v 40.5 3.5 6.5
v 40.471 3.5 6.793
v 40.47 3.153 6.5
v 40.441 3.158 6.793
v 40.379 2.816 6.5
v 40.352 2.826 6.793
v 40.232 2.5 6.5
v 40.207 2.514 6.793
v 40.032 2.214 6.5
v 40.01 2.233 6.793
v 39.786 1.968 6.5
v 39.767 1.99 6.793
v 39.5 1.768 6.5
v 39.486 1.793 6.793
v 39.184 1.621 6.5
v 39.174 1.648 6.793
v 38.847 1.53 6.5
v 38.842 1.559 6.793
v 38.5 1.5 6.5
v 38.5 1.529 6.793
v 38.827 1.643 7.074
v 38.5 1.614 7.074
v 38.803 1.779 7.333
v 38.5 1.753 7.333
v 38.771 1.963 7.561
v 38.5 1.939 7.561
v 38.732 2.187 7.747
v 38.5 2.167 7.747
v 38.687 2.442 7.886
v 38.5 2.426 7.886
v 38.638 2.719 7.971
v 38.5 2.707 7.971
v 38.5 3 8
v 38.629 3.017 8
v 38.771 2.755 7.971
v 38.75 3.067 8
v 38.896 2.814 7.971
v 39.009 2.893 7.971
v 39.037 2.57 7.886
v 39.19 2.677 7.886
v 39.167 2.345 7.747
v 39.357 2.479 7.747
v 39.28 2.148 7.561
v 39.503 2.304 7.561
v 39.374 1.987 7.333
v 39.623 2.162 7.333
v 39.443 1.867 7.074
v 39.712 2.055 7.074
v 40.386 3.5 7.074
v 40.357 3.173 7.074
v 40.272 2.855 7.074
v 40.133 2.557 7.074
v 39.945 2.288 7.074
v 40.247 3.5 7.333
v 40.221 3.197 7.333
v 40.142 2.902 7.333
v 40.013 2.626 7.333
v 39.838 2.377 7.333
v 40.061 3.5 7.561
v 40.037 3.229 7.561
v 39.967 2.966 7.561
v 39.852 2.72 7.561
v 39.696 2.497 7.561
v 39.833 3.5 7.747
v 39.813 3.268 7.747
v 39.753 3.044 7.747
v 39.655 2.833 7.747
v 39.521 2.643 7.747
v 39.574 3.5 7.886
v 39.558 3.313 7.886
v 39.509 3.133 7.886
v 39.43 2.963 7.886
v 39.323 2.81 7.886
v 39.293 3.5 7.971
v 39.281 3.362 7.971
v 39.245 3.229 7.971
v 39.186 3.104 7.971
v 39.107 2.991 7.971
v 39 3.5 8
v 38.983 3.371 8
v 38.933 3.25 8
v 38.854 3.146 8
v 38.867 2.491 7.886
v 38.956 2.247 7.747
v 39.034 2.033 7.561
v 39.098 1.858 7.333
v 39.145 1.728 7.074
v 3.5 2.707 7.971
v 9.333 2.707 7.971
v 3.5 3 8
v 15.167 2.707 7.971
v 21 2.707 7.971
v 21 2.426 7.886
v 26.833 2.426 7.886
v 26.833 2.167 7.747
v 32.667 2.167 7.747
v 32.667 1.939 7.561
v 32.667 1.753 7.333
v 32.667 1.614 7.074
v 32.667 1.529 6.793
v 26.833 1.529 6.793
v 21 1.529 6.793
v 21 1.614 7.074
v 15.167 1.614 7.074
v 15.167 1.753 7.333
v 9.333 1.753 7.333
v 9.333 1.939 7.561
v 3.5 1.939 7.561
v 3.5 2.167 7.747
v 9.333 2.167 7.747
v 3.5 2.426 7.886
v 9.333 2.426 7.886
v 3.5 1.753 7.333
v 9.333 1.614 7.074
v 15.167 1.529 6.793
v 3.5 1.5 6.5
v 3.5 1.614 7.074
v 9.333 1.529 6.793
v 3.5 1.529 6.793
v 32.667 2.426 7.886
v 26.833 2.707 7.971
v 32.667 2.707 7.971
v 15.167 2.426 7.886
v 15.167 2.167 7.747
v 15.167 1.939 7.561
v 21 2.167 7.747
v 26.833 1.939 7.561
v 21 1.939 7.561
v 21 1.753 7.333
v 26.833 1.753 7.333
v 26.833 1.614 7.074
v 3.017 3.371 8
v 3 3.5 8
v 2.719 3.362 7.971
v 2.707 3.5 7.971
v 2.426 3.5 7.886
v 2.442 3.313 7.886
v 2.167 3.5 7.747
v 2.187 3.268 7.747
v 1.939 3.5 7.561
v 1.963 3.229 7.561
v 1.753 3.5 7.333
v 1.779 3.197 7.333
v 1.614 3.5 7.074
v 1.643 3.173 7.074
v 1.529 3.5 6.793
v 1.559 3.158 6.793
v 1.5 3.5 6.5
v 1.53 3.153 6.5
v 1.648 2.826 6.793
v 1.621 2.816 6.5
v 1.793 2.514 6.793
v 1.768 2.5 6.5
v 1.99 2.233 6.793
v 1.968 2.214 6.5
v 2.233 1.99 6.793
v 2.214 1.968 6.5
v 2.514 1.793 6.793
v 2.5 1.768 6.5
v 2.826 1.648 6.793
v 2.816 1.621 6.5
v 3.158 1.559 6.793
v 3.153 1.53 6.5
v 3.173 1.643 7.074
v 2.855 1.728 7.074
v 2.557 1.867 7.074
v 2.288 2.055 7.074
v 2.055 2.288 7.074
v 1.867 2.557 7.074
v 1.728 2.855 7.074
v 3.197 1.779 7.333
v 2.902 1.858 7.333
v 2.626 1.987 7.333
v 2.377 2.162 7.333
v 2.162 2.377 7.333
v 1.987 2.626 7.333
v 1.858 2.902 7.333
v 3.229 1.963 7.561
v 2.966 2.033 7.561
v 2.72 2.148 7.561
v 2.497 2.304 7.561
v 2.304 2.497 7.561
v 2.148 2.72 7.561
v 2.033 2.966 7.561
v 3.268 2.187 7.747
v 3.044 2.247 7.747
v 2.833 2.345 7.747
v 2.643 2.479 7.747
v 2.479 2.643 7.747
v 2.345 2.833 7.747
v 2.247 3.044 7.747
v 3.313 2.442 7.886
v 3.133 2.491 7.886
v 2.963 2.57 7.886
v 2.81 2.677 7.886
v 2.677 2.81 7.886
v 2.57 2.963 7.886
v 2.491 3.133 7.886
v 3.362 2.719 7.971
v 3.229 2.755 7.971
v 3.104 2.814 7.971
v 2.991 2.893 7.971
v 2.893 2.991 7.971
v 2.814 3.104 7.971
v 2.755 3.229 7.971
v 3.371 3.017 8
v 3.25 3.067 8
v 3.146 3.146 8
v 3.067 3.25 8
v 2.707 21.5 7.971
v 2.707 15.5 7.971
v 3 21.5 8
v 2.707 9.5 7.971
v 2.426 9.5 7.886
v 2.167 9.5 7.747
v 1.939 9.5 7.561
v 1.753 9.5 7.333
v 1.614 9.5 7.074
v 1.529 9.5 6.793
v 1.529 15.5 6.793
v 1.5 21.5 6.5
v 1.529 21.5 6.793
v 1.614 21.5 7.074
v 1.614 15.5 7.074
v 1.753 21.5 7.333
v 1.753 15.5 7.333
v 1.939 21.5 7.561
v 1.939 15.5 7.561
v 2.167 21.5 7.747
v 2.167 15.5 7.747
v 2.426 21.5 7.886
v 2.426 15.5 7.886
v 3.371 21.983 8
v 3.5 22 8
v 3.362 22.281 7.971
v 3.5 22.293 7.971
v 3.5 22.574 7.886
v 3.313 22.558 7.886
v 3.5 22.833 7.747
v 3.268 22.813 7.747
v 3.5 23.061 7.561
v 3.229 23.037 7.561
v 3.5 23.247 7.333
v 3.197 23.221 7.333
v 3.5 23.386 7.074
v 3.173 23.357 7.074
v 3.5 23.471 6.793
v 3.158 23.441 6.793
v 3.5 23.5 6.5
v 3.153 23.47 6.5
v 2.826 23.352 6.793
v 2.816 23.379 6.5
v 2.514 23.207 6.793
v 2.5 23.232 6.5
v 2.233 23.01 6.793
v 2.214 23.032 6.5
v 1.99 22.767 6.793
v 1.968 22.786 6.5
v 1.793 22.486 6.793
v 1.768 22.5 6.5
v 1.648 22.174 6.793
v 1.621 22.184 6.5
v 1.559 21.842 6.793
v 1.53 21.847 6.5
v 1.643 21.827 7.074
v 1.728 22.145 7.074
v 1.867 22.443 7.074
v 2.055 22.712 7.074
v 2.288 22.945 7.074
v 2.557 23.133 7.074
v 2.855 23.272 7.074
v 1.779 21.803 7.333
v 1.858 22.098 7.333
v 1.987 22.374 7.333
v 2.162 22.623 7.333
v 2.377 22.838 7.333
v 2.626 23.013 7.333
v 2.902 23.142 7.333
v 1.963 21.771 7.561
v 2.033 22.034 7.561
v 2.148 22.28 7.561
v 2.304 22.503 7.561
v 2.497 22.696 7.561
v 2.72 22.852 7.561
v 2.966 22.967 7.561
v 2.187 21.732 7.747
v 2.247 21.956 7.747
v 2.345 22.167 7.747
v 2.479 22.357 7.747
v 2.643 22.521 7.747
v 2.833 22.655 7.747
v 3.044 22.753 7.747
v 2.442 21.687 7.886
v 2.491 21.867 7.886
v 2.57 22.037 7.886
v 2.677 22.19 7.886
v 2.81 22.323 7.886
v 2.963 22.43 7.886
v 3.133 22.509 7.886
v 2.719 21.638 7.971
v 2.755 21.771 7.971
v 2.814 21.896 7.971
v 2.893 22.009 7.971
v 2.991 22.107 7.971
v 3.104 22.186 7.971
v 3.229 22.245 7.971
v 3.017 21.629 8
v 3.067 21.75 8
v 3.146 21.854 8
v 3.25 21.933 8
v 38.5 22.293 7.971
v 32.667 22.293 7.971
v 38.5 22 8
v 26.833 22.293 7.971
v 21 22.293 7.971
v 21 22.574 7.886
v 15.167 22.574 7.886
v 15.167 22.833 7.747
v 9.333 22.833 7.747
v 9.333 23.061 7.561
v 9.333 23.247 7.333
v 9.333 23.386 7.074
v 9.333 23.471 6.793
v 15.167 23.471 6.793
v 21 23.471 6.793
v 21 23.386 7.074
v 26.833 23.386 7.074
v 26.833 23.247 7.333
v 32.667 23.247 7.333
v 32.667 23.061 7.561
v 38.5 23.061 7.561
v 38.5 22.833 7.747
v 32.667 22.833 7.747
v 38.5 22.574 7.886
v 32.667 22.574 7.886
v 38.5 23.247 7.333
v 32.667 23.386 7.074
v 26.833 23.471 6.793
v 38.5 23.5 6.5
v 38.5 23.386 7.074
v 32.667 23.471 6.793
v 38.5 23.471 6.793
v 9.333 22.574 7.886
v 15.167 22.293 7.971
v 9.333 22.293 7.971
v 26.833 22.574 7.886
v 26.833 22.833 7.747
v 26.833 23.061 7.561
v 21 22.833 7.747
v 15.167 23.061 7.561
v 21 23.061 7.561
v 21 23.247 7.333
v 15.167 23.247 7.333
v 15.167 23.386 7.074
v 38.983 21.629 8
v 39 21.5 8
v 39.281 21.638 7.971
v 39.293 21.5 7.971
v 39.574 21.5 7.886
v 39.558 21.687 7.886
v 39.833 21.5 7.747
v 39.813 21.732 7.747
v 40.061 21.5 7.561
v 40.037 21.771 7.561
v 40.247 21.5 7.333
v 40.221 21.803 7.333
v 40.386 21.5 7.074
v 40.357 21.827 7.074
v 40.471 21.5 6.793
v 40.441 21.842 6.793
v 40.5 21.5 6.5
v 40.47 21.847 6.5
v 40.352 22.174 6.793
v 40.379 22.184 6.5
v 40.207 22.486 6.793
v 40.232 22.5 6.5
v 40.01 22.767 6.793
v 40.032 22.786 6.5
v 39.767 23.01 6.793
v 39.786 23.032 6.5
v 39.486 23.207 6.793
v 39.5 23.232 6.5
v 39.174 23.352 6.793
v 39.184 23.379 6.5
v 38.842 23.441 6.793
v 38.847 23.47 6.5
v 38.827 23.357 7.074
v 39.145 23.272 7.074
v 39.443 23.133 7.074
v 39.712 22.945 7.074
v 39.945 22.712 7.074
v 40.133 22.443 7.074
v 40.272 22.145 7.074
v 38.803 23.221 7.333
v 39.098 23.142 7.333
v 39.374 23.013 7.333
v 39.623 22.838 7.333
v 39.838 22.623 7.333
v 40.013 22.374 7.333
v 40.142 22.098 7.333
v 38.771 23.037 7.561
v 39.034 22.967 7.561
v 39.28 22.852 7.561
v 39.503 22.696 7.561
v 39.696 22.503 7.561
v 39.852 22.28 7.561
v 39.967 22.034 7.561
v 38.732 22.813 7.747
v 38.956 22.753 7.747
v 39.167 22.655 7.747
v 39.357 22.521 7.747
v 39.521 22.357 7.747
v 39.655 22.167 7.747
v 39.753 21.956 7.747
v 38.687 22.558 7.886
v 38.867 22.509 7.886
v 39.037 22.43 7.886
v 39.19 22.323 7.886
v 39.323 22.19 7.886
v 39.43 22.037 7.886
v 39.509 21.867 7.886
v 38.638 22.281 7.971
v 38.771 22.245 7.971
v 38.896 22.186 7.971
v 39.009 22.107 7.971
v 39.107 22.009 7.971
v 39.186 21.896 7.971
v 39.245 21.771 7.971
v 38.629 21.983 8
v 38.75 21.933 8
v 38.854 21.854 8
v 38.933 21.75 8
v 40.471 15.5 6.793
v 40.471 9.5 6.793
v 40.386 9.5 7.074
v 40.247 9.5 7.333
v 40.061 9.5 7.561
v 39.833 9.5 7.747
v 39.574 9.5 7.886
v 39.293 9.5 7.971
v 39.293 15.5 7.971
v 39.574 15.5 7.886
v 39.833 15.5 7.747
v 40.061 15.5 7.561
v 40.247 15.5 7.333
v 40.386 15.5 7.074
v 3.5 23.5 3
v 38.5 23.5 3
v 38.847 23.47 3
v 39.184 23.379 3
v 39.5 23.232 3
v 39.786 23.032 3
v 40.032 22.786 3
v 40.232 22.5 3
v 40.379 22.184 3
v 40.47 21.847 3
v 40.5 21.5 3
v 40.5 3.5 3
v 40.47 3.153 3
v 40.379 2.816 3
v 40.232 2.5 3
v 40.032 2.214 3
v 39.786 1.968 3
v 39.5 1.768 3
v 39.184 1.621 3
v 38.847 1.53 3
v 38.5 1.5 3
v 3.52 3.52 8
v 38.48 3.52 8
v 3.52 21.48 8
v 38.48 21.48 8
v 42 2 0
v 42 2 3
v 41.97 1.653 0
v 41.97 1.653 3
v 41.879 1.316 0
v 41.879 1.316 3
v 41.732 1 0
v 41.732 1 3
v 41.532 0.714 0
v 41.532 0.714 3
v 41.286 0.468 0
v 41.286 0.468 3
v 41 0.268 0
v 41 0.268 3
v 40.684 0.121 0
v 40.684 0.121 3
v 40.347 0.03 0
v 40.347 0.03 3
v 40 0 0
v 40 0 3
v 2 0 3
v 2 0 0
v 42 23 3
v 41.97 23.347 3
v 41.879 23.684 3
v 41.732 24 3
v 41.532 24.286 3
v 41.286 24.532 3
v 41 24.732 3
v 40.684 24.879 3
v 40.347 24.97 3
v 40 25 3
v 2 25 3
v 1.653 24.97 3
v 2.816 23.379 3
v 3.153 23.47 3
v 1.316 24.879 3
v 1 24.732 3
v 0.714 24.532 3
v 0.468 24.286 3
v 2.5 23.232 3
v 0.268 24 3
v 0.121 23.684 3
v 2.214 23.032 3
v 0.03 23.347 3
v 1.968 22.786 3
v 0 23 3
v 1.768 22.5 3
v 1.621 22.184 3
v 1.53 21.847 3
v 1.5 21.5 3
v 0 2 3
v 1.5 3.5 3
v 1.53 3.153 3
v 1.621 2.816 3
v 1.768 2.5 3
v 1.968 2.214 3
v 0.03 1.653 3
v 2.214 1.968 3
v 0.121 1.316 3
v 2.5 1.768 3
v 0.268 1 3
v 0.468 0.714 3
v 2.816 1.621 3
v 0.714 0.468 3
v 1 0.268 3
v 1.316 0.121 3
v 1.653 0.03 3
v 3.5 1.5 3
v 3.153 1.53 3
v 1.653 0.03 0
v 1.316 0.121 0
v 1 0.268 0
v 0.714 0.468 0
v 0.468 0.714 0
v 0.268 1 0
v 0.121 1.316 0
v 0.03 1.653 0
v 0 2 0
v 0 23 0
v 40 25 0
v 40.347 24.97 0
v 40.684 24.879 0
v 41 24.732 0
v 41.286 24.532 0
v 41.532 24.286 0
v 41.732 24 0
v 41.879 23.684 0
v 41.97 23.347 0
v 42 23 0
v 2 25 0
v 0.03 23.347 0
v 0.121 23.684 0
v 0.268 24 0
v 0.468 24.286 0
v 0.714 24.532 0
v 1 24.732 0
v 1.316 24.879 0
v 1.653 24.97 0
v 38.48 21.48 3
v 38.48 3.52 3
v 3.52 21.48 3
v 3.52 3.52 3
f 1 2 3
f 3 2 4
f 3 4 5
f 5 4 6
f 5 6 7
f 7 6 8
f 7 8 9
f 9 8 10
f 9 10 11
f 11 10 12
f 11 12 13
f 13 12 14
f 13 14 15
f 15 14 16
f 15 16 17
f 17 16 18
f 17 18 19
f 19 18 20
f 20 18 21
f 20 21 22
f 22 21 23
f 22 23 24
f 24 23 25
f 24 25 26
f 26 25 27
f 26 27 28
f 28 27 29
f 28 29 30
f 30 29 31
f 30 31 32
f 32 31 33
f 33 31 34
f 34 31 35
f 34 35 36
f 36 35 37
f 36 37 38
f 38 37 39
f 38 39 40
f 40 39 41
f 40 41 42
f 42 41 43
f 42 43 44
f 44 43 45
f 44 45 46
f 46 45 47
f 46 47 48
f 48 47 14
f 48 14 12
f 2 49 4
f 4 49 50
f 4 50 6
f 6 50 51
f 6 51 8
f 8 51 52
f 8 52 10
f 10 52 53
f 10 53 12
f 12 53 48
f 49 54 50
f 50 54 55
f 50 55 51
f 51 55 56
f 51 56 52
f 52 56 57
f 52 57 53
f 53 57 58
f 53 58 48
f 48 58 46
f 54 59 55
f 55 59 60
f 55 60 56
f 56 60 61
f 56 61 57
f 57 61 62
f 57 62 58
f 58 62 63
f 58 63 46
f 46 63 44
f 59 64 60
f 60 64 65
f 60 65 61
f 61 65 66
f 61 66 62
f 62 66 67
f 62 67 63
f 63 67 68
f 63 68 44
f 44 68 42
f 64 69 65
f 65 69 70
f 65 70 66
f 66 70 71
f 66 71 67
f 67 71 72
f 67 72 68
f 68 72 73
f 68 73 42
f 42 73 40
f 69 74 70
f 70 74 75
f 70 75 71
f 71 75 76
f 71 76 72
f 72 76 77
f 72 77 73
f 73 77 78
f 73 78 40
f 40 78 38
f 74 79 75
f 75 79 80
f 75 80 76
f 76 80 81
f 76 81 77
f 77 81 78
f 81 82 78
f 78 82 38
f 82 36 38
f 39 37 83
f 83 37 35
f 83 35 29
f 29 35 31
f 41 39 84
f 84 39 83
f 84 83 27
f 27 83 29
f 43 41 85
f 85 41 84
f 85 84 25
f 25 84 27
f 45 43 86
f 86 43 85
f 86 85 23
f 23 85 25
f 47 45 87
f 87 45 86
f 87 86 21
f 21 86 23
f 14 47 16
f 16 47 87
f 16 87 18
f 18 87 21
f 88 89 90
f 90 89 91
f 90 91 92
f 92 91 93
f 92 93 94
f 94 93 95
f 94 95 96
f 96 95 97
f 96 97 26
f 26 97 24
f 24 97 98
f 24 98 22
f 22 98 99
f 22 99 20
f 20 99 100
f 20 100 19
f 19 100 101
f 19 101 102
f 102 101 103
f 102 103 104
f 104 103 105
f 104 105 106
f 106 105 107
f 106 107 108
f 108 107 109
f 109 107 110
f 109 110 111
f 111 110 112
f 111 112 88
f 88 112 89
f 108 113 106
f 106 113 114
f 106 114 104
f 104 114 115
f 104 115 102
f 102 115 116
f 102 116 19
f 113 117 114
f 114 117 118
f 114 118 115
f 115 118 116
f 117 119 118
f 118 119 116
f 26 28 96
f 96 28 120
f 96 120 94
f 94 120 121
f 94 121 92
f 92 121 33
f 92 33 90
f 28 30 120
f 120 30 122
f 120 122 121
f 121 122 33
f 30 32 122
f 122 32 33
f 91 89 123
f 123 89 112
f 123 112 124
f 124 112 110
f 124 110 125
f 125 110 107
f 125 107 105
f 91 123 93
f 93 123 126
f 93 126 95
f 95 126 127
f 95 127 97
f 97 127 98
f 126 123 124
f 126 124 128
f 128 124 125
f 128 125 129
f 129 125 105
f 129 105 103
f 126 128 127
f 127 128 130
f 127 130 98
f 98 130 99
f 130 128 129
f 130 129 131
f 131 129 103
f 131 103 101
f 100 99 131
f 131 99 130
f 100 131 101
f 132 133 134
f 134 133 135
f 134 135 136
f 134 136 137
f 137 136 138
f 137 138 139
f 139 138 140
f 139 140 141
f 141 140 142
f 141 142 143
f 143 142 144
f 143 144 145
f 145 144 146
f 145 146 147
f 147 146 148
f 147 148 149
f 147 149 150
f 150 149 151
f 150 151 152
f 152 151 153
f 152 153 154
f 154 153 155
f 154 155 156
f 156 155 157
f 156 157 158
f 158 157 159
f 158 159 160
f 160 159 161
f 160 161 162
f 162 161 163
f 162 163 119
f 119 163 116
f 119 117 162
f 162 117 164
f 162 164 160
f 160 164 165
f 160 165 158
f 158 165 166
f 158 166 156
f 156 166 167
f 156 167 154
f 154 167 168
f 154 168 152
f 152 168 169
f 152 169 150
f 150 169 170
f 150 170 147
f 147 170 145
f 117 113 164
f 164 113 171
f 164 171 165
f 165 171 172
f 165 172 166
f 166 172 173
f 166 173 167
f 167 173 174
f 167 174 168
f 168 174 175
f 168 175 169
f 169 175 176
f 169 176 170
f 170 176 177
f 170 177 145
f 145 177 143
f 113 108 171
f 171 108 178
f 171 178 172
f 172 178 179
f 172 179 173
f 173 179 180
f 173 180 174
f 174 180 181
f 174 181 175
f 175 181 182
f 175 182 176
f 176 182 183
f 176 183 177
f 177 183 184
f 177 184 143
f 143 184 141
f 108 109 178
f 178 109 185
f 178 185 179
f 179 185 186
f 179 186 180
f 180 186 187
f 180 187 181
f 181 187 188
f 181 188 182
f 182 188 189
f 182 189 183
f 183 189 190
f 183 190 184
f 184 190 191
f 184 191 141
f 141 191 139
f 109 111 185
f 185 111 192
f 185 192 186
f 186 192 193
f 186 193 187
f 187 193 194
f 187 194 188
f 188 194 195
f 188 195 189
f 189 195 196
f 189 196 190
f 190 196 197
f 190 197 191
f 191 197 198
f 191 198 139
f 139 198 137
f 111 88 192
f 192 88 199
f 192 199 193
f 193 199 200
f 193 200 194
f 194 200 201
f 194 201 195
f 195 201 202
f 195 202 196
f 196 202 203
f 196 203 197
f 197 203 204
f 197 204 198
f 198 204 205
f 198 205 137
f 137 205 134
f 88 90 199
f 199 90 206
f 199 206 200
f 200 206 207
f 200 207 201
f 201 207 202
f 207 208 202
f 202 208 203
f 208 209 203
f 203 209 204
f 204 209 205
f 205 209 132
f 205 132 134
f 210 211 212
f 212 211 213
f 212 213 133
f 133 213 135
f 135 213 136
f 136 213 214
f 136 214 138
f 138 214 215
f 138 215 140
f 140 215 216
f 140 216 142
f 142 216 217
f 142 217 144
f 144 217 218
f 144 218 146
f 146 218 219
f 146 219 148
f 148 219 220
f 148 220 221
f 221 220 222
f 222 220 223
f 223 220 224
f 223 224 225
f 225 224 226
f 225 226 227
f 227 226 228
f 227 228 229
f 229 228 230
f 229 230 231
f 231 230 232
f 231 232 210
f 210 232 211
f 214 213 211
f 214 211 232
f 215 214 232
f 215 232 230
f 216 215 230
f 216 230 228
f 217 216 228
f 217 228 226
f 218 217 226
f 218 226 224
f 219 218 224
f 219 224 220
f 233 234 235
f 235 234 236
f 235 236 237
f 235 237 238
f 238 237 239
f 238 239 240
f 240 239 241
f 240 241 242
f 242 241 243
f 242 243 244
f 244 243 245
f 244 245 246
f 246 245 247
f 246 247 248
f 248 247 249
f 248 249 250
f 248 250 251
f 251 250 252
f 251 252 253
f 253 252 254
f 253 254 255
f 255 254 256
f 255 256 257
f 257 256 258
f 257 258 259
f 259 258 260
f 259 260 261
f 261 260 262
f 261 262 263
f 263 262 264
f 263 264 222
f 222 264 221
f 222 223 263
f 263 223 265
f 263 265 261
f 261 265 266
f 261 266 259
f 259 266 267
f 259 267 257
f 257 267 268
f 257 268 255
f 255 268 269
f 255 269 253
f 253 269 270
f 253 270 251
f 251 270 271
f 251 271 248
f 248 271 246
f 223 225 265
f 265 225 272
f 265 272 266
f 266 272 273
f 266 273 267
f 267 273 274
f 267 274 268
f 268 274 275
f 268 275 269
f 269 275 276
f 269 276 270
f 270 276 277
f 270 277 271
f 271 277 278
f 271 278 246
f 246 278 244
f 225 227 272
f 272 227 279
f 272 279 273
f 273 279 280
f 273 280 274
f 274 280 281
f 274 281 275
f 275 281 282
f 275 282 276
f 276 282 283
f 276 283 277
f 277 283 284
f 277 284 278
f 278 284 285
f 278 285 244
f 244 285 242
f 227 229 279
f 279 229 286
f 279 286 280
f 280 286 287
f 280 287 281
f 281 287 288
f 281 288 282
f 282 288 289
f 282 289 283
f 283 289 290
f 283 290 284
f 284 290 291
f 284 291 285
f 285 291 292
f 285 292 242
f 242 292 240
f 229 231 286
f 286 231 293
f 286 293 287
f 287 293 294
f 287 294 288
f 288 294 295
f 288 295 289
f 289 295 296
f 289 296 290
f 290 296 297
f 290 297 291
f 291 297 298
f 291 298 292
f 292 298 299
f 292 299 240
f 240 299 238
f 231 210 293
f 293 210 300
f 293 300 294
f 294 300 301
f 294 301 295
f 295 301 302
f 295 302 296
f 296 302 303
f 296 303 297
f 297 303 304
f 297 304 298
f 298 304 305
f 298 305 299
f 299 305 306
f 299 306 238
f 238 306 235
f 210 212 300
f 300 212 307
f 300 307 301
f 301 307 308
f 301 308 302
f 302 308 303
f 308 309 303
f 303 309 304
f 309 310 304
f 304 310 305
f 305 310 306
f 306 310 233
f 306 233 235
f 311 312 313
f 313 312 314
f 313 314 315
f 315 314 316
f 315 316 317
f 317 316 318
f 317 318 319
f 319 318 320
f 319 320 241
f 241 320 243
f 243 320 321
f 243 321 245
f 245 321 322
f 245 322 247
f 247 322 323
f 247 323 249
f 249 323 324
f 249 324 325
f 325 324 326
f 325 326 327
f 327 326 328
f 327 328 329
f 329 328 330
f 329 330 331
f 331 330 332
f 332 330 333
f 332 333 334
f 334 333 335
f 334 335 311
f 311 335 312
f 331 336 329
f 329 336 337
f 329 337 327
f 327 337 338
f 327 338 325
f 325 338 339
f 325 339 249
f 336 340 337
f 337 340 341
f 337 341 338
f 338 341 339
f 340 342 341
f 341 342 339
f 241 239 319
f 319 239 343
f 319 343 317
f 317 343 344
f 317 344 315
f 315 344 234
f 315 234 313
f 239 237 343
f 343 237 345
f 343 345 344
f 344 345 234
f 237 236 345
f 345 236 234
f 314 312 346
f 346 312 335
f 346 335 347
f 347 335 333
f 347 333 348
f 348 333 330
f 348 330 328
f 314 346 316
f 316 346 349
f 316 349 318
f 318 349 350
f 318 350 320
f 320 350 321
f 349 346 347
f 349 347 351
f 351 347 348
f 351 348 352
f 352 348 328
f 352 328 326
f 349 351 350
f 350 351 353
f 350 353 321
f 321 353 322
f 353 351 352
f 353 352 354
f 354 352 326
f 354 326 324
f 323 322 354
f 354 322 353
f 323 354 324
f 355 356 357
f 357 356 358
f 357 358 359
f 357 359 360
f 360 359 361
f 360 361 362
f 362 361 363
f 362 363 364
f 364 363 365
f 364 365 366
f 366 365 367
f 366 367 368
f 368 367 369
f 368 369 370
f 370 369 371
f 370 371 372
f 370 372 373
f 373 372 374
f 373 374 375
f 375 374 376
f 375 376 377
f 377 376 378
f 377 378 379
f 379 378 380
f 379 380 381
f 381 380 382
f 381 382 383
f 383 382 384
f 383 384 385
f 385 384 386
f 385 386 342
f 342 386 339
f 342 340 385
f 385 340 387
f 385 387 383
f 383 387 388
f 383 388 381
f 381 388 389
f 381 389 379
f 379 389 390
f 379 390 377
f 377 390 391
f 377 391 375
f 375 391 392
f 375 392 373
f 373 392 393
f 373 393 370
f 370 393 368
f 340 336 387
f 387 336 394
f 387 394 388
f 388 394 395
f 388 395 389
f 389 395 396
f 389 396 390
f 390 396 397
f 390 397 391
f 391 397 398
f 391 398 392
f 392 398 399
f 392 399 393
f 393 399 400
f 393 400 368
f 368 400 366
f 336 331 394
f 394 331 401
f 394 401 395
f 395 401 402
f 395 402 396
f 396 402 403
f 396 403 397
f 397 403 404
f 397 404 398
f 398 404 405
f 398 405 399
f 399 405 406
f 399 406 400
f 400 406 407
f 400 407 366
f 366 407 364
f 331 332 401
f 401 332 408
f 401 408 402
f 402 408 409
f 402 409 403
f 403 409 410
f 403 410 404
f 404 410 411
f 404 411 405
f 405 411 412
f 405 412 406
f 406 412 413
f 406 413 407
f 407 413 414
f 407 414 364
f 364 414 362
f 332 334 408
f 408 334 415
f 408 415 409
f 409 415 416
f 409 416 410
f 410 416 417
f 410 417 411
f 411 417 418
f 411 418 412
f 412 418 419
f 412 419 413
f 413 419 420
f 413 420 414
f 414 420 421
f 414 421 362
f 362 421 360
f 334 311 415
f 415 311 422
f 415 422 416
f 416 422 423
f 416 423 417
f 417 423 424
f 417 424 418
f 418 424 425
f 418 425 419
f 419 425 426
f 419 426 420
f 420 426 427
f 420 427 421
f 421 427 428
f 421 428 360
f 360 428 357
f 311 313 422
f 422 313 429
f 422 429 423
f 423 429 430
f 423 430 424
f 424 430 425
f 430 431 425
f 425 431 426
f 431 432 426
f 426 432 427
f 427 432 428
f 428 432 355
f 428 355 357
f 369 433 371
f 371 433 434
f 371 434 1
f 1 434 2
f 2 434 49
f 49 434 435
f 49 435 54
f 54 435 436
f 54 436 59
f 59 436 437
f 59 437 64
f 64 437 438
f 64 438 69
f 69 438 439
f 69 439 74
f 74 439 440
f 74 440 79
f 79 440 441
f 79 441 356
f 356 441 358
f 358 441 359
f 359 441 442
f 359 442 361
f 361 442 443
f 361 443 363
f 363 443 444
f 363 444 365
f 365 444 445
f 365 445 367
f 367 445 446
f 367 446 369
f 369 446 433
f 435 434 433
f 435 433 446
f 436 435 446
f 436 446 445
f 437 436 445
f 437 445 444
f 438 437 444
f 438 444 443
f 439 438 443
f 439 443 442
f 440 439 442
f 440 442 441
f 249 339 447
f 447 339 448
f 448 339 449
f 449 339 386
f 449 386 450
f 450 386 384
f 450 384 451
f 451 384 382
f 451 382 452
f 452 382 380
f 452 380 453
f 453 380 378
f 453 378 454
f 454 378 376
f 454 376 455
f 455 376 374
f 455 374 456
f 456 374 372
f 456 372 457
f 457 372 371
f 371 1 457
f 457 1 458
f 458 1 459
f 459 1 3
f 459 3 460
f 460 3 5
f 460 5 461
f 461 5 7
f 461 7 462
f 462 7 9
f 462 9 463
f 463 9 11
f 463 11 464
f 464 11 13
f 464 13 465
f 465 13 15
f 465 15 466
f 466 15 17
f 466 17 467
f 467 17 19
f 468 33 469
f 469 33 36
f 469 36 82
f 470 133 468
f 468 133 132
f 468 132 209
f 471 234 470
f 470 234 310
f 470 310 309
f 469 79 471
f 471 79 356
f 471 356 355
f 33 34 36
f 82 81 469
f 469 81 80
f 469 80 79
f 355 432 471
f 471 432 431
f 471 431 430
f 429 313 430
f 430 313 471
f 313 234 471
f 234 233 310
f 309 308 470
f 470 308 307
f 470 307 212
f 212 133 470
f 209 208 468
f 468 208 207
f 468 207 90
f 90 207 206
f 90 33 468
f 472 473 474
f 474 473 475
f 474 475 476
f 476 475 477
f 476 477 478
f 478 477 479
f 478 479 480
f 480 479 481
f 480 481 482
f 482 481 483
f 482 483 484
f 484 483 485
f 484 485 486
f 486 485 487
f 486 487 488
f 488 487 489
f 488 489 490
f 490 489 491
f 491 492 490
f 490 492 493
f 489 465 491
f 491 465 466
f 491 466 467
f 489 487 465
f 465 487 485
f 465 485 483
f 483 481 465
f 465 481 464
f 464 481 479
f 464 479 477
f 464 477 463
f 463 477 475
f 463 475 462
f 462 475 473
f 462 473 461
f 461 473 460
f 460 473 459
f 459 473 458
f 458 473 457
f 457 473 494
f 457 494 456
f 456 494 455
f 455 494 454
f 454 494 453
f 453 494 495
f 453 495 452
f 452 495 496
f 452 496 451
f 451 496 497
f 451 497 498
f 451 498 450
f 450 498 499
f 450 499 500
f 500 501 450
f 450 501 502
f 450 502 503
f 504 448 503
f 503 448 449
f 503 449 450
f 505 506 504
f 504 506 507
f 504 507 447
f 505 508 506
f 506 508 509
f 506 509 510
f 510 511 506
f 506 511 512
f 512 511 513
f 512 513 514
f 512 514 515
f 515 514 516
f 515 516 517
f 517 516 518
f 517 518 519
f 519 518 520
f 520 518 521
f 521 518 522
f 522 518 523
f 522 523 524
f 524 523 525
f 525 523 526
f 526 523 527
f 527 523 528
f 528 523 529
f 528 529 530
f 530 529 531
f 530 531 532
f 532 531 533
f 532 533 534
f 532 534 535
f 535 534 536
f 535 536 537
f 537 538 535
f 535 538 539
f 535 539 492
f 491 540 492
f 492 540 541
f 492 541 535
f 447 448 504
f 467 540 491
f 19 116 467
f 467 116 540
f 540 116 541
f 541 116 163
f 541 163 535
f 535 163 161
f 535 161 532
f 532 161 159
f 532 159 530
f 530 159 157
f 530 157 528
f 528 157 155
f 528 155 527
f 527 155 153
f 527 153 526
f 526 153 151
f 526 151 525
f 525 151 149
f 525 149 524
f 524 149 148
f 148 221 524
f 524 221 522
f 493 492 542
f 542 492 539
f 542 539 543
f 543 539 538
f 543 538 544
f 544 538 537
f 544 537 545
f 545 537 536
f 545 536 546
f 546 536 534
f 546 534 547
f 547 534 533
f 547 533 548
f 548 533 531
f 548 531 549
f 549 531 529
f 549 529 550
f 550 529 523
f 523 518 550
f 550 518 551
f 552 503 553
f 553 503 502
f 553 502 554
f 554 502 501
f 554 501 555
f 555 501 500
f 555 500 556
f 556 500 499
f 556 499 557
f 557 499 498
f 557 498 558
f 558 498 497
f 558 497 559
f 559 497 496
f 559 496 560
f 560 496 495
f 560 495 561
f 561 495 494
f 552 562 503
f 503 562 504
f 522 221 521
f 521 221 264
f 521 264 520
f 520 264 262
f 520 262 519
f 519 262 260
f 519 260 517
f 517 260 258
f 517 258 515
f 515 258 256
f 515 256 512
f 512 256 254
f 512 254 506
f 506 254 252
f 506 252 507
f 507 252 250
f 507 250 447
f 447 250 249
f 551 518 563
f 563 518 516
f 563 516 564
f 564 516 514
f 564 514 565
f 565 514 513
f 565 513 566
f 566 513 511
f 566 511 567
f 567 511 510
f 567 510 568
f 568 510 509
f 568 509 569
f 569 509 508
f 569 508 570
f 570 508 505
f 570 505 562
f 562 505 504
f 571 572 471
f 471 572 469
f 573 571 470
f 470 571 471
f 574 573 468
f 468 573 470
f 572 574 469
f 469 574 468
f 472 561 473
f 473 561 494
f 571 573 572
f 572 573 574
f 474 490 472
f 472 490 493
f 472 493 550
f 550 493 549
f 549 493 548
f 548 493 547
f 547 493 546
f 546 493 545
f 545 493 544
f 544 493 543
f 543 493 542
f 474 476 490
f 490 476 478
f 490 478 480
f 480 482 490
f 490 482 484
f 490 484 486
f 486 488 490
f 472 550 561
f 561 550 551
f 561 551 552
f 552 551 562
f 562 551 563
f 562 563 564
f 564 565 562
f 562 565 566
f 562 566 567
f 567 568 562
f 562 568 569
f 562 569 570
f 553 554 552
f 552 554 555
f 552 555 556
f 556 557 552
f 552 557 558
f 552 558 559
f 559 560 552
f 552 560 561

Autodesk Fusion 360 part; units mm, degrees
sketch "Skizze1" plane through (0, 0, 0) normal (0, 0, 1) x (1, 0, 0)
  line L0 (0, 0) -> (42, 0)
  line L1 (42, 0) -> (42, 25)
  line L2 (42, 25) -> (0, 25)
  line L3 (0, 25) -> (0, 0)
  dimension "d1" = 42
  dimension "d2" = 25
extrude "Extrusion1" add sketch "Skizze1" along normal blind 3
sketch "Skizze2" plane through (0, 0, 3) normal (0, 0, 1) x (-1, 0, 0)
  line L0 (0, -25) -> (0, 0)
  line L1 (0, 0) -> (-42, 0)
  line L2 (-42, 0) -> (-42, -25)
  line L3 (-42, -25) -> (0, -25)
  line L4 (-40.5, -1.5) -> (-40.5, -23.5)
  line L5 (-40.5, -23.5) -> (-1.5, -23.5)
  line L6 (-1.5, -23.5) -> (-1.5, -1.5)
  line L7 (-1.5, -1.5) -> (-40.5, -1.5)
  line L8 (-38.4799, -3.5201) -> (-38.4799, -21.4799)
  line L9 (-38.4799, -21.4799) -> (-3.5201, -21.4799)
  line L10 (-3.5201, -21.4799) -> (-3.5201, -3.5201)
  line L11 (-3.5201, -3.5201) -> (-38.4799, -3.5201)
  dimension "d6" = -1.5
  dimension "d7" = -3.5201
extrude "Extrusion2" add sketch "Skizze2" along normal blind 5 contours L4 L5 L6 L7
fillet "Abrundung1" radius 2 8 edges at (0, 25, 1.5) (1.5, 23.5, 5.5) (40.5, 23.5, 5.5) (42, 25, 1.5) (0, 0, 1.5) (1.5, 1.5, 5.5) (40.5, 1.5, 5.5) (42, 0, 1.5)
fillet "Abrundung2" radius 1.5 8 edges at (39.9142, 2.0858, 8) (40.5, 12.5, 8) (39.9142, 22.9142, 8) (21, 23.5, 8) (2.0858, 22.9142, 8) (1.5, 12.5, 8) (2.0858, 2.0858, 8) (21, 1.5, 8)
